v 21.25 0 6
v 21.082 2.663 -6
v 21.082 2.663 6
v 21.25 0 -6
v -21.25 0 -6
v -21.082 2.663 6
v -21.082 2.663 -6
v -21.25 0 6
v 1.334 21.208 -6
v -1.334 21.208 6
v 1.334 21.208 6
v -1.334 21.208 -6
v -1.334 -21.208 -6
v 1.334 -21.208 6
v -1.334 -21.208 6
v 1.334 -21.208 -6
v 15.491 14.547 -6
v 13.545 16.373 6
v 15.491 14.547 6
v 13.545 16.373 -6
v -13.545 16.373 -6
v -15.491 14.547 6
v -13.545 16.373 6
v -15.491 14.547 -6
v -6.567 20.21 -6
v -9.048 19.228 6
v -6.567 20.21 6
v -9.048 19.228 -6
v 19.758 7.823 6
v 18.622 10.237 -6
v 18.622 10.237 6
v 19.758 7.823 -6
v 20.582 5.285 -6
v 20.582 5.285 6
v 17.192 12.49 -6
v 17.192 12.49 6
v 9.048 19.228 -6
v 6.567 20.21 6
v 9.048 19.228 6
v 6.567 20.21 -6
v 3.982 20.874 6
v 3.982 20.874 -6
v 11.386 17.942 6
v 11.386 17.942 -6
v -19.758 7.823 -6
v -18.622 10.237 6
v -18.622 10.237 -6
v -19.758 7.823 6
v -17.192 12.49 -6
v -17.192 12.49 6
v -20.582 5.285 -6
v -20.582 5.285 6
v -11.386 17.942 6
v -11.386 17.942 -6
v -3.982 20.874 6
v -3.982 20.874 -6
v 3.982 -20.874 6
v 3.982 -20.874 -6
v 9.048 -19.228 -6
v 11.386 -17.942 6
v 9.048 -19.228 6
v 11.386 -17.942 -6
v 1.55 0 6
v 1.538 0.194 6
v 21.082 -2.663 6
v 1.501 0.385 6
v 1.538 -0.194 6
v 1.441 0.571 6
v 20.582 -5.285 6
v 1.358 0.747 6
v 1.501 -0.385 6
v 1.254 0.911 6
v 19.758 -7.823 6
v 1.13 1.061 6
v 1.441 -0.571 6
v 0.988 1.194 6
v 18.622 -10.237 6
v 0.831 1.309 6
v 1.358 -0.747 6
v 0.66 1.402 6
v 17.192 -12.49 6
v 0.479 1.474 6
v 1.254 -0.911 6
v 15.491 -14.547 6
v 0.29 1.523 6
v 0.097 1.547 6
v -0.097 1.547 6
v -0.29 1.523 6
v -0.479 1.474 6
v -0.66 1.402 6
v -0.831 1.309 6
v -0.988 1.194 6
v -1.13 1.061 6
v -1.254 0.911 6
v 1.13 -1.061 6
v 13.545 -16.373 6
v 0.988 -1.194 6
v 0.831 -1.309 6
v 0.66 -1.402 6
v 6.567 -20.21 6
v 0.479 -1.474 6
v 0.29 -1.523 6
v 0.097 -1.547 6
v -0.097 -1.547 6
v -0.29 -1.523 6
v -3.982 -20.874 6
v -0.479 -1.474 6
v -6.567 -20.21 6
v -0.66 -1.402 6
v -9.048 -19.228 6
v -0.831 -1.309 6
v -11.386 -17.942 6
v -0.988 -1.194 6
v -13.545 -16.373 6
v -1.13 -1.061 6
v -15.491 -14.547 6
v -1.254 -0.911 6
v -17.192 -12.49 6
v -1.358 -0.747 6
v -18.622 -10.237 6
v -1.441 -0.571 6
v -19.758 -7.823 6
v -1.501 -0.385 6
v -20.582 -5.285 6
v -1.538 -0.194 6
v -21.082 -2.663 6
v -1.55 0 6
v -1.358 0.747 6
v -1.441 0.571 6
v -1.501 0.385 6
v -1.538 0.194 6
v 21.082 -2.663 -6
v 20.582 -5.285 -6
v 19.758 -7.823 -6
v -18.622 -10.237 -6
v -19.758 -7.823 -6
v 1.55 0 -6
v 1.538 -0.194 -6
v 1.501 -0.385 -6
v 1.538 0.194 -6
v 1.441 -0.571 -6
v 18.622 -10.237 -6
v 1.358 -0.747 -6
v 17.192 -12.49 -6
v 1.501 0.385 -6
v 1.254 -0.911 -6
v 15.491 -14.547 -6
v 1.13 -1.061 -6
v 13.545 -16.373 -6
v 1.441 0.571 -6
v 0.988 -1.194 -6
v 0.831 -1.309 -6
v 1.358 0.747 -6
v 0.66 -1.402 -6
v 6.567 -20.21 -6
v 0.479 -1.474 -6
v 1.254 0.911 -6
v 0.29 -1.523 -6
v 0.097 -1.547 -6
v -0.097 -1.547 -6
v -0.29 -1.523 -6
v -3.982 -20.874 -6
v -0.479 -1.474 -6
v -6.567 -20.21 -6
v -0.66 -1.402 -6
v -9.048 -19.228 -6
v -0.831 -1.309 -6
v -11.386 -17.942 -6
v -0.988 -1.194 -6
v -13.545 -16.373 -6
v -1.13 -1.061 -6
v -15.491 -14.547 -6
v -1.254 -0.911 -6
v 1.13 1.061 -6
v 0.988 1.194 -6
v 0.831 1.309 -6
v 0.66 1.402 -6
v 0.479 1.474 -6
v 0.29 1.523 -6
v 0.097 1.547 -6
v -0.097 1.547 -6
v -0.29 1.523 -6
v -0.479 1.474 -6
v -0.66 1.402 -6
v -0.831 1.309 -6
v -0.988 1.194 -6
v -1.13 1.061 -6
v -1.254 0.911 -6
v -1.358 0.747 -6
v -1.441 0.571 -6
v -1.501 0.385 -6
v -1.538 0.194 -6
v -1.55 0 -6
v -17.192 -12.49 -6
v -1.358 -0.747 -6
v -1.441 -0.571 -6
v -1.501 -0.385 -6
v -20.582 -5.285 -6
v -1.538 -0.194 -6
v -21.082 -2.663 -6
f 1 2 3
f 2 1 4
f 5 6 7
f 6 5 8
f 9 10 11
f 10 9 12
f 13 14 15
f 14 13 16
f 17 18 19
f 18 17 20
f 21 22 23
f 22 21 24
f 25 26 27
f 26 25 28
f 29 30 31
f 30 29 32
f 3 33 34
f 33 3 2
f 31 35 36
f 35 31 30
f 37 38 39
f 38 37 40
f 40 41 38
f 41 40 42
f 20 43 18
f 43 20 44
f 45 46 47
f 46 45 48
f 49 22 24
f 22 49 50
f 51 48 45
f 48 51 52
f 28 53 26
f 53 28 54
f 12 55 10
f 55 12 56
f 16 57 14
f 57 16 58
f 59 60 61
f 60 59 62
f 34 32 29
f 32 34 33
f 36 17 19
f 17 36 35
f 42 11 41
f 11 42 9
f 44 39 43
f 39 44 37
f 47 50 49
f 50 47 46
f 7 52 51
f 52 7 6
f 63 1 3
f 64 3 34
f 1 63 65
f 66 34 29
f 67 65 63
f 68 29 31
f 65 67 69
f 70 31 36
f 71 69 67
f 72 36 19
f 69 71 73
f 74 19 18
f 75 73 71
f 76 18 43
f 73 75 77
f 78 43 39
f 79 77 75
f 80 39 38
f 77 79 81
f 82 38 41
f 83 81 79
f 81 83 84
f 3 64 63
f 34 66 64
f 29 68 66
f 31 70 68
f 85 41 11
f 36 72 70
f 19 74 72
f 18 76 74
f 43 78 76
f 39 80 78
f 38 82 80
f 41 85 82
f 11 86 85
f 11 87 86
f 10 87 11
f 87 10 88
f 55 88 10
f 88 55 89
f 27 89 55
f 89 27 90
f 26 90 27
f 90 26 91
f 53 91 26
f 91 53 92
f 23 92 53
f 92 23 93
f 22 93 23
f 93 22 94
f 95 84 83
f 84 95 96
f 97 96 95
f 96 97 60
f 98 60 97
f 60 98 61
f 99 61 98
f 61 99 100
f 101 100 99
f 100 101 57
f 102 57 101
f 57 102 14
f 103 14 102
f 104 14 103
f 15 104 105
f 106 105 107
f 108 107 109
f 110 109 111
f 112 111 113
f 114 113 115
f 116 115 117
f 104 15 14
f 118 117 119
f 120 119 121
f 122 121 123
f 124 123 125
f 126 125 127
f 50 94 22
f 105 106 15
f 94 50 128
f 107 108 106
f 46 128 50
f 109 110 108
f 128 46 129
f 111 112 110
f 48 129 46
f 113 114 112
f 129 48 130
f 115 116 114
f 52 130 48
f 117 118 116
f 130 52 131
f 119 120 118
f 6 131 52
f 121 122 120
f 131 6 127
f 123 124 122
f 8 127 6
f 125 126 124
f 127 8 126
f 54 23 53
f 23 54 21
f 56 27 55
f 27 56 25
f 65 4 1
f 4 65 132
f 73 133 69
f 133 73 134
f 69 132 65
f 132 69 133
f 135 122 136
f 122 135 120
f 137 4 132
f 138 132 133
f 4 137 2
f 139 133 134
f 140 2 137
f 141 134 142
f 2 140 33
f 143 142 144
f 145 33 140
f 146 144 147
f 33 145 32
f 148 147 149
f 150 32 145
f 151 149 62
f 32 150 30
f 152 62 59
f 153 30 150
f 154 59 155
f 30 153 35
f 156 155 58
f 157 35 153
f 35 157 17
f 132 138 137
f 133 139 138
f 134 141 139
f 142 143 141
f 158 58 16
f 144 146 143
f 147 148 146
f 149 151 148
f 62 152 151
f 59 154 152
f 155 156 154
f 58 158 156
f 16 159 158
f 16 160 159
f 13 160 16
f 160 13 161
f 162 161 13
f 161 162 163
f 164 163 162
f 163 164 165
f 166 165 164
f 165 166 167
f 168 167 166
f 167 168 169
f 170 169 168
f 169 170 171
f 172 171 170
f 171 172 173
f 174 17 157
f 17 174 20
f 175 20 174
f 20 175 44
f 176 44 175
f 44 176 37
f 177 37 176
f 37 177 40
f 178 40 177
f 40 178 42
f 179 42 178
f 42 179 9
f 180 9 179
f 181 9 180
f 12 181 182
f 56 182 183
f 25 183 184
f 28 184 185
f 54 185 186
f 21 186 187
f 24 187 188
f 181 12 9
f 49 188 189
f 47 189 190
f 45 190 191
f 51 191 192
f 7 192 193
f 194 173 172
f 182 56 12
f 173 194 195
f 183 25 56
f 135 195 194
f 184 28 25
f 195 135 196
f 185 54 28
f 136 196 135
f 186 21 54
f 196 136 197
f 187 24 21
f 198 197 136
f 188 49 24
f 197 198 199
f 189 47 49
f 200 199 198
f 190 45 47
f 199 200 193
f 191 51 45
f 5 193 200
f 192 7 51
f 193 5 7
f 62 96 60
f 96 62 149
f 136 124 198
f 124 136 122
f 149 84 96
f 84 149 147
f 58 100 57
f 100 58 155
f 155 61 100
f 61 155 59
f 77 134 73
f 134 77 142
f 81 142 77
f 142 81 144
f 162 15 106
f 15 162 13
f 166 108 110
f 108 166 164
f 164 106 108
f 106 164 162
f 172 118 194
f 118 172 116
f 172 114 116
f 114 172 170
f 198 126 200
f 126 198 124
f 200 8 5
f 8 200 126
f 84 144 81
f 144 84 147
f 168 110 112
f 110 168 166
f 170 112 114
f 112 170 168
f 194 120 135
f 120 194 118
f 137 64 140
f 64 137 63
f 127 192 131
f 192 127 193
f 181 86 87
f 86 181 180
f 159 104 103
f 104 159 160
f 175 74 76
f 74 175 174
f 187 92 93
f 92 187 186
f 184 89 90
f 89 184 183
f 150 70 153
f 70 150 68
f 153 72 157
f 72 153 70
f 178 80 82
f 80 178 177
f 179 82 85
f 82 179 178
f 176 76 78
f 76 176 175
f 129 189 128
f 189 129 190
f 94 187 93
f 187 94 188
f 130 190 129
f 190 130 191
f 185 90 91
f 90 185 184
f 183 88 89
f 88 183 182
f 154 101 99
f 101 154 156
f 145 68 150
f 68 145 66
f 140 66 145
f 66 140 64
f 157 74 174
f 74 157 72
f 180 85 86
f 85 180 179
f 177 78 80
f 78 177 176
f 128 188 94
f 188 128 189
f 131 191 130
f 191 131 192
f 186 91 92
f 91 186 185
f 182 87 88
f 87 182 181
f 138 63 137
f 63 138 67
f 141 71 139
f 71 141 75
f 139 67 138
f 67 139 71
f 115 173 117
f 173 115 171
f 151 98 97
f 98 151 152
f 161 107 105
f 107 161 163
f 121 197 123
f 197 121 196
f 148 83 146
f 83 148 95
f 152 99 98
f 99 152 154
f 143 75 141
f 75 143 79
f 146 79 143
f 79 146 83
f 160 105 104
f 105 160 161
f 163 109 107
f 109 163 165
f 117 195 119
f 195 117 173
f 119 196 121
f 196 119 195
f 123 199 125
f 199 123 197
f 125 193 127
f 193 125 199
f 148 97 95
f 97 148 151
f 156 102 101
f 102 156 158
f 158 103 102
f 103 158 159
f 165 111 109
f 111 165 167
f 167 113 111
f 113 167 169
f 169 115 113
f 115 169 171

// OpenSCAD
$fn = 50;


difference() {
	union() {
		translate(v = [0, 0, -6.0000000000]) {
			cylinder(h = 12, r = 21.2500000000);
		}
	}
	union() {
		translate(v = [0, 0, -100.0000000000]) {
			cylinder(h = 200, r = 1.5500000000);
		}
	}
}
